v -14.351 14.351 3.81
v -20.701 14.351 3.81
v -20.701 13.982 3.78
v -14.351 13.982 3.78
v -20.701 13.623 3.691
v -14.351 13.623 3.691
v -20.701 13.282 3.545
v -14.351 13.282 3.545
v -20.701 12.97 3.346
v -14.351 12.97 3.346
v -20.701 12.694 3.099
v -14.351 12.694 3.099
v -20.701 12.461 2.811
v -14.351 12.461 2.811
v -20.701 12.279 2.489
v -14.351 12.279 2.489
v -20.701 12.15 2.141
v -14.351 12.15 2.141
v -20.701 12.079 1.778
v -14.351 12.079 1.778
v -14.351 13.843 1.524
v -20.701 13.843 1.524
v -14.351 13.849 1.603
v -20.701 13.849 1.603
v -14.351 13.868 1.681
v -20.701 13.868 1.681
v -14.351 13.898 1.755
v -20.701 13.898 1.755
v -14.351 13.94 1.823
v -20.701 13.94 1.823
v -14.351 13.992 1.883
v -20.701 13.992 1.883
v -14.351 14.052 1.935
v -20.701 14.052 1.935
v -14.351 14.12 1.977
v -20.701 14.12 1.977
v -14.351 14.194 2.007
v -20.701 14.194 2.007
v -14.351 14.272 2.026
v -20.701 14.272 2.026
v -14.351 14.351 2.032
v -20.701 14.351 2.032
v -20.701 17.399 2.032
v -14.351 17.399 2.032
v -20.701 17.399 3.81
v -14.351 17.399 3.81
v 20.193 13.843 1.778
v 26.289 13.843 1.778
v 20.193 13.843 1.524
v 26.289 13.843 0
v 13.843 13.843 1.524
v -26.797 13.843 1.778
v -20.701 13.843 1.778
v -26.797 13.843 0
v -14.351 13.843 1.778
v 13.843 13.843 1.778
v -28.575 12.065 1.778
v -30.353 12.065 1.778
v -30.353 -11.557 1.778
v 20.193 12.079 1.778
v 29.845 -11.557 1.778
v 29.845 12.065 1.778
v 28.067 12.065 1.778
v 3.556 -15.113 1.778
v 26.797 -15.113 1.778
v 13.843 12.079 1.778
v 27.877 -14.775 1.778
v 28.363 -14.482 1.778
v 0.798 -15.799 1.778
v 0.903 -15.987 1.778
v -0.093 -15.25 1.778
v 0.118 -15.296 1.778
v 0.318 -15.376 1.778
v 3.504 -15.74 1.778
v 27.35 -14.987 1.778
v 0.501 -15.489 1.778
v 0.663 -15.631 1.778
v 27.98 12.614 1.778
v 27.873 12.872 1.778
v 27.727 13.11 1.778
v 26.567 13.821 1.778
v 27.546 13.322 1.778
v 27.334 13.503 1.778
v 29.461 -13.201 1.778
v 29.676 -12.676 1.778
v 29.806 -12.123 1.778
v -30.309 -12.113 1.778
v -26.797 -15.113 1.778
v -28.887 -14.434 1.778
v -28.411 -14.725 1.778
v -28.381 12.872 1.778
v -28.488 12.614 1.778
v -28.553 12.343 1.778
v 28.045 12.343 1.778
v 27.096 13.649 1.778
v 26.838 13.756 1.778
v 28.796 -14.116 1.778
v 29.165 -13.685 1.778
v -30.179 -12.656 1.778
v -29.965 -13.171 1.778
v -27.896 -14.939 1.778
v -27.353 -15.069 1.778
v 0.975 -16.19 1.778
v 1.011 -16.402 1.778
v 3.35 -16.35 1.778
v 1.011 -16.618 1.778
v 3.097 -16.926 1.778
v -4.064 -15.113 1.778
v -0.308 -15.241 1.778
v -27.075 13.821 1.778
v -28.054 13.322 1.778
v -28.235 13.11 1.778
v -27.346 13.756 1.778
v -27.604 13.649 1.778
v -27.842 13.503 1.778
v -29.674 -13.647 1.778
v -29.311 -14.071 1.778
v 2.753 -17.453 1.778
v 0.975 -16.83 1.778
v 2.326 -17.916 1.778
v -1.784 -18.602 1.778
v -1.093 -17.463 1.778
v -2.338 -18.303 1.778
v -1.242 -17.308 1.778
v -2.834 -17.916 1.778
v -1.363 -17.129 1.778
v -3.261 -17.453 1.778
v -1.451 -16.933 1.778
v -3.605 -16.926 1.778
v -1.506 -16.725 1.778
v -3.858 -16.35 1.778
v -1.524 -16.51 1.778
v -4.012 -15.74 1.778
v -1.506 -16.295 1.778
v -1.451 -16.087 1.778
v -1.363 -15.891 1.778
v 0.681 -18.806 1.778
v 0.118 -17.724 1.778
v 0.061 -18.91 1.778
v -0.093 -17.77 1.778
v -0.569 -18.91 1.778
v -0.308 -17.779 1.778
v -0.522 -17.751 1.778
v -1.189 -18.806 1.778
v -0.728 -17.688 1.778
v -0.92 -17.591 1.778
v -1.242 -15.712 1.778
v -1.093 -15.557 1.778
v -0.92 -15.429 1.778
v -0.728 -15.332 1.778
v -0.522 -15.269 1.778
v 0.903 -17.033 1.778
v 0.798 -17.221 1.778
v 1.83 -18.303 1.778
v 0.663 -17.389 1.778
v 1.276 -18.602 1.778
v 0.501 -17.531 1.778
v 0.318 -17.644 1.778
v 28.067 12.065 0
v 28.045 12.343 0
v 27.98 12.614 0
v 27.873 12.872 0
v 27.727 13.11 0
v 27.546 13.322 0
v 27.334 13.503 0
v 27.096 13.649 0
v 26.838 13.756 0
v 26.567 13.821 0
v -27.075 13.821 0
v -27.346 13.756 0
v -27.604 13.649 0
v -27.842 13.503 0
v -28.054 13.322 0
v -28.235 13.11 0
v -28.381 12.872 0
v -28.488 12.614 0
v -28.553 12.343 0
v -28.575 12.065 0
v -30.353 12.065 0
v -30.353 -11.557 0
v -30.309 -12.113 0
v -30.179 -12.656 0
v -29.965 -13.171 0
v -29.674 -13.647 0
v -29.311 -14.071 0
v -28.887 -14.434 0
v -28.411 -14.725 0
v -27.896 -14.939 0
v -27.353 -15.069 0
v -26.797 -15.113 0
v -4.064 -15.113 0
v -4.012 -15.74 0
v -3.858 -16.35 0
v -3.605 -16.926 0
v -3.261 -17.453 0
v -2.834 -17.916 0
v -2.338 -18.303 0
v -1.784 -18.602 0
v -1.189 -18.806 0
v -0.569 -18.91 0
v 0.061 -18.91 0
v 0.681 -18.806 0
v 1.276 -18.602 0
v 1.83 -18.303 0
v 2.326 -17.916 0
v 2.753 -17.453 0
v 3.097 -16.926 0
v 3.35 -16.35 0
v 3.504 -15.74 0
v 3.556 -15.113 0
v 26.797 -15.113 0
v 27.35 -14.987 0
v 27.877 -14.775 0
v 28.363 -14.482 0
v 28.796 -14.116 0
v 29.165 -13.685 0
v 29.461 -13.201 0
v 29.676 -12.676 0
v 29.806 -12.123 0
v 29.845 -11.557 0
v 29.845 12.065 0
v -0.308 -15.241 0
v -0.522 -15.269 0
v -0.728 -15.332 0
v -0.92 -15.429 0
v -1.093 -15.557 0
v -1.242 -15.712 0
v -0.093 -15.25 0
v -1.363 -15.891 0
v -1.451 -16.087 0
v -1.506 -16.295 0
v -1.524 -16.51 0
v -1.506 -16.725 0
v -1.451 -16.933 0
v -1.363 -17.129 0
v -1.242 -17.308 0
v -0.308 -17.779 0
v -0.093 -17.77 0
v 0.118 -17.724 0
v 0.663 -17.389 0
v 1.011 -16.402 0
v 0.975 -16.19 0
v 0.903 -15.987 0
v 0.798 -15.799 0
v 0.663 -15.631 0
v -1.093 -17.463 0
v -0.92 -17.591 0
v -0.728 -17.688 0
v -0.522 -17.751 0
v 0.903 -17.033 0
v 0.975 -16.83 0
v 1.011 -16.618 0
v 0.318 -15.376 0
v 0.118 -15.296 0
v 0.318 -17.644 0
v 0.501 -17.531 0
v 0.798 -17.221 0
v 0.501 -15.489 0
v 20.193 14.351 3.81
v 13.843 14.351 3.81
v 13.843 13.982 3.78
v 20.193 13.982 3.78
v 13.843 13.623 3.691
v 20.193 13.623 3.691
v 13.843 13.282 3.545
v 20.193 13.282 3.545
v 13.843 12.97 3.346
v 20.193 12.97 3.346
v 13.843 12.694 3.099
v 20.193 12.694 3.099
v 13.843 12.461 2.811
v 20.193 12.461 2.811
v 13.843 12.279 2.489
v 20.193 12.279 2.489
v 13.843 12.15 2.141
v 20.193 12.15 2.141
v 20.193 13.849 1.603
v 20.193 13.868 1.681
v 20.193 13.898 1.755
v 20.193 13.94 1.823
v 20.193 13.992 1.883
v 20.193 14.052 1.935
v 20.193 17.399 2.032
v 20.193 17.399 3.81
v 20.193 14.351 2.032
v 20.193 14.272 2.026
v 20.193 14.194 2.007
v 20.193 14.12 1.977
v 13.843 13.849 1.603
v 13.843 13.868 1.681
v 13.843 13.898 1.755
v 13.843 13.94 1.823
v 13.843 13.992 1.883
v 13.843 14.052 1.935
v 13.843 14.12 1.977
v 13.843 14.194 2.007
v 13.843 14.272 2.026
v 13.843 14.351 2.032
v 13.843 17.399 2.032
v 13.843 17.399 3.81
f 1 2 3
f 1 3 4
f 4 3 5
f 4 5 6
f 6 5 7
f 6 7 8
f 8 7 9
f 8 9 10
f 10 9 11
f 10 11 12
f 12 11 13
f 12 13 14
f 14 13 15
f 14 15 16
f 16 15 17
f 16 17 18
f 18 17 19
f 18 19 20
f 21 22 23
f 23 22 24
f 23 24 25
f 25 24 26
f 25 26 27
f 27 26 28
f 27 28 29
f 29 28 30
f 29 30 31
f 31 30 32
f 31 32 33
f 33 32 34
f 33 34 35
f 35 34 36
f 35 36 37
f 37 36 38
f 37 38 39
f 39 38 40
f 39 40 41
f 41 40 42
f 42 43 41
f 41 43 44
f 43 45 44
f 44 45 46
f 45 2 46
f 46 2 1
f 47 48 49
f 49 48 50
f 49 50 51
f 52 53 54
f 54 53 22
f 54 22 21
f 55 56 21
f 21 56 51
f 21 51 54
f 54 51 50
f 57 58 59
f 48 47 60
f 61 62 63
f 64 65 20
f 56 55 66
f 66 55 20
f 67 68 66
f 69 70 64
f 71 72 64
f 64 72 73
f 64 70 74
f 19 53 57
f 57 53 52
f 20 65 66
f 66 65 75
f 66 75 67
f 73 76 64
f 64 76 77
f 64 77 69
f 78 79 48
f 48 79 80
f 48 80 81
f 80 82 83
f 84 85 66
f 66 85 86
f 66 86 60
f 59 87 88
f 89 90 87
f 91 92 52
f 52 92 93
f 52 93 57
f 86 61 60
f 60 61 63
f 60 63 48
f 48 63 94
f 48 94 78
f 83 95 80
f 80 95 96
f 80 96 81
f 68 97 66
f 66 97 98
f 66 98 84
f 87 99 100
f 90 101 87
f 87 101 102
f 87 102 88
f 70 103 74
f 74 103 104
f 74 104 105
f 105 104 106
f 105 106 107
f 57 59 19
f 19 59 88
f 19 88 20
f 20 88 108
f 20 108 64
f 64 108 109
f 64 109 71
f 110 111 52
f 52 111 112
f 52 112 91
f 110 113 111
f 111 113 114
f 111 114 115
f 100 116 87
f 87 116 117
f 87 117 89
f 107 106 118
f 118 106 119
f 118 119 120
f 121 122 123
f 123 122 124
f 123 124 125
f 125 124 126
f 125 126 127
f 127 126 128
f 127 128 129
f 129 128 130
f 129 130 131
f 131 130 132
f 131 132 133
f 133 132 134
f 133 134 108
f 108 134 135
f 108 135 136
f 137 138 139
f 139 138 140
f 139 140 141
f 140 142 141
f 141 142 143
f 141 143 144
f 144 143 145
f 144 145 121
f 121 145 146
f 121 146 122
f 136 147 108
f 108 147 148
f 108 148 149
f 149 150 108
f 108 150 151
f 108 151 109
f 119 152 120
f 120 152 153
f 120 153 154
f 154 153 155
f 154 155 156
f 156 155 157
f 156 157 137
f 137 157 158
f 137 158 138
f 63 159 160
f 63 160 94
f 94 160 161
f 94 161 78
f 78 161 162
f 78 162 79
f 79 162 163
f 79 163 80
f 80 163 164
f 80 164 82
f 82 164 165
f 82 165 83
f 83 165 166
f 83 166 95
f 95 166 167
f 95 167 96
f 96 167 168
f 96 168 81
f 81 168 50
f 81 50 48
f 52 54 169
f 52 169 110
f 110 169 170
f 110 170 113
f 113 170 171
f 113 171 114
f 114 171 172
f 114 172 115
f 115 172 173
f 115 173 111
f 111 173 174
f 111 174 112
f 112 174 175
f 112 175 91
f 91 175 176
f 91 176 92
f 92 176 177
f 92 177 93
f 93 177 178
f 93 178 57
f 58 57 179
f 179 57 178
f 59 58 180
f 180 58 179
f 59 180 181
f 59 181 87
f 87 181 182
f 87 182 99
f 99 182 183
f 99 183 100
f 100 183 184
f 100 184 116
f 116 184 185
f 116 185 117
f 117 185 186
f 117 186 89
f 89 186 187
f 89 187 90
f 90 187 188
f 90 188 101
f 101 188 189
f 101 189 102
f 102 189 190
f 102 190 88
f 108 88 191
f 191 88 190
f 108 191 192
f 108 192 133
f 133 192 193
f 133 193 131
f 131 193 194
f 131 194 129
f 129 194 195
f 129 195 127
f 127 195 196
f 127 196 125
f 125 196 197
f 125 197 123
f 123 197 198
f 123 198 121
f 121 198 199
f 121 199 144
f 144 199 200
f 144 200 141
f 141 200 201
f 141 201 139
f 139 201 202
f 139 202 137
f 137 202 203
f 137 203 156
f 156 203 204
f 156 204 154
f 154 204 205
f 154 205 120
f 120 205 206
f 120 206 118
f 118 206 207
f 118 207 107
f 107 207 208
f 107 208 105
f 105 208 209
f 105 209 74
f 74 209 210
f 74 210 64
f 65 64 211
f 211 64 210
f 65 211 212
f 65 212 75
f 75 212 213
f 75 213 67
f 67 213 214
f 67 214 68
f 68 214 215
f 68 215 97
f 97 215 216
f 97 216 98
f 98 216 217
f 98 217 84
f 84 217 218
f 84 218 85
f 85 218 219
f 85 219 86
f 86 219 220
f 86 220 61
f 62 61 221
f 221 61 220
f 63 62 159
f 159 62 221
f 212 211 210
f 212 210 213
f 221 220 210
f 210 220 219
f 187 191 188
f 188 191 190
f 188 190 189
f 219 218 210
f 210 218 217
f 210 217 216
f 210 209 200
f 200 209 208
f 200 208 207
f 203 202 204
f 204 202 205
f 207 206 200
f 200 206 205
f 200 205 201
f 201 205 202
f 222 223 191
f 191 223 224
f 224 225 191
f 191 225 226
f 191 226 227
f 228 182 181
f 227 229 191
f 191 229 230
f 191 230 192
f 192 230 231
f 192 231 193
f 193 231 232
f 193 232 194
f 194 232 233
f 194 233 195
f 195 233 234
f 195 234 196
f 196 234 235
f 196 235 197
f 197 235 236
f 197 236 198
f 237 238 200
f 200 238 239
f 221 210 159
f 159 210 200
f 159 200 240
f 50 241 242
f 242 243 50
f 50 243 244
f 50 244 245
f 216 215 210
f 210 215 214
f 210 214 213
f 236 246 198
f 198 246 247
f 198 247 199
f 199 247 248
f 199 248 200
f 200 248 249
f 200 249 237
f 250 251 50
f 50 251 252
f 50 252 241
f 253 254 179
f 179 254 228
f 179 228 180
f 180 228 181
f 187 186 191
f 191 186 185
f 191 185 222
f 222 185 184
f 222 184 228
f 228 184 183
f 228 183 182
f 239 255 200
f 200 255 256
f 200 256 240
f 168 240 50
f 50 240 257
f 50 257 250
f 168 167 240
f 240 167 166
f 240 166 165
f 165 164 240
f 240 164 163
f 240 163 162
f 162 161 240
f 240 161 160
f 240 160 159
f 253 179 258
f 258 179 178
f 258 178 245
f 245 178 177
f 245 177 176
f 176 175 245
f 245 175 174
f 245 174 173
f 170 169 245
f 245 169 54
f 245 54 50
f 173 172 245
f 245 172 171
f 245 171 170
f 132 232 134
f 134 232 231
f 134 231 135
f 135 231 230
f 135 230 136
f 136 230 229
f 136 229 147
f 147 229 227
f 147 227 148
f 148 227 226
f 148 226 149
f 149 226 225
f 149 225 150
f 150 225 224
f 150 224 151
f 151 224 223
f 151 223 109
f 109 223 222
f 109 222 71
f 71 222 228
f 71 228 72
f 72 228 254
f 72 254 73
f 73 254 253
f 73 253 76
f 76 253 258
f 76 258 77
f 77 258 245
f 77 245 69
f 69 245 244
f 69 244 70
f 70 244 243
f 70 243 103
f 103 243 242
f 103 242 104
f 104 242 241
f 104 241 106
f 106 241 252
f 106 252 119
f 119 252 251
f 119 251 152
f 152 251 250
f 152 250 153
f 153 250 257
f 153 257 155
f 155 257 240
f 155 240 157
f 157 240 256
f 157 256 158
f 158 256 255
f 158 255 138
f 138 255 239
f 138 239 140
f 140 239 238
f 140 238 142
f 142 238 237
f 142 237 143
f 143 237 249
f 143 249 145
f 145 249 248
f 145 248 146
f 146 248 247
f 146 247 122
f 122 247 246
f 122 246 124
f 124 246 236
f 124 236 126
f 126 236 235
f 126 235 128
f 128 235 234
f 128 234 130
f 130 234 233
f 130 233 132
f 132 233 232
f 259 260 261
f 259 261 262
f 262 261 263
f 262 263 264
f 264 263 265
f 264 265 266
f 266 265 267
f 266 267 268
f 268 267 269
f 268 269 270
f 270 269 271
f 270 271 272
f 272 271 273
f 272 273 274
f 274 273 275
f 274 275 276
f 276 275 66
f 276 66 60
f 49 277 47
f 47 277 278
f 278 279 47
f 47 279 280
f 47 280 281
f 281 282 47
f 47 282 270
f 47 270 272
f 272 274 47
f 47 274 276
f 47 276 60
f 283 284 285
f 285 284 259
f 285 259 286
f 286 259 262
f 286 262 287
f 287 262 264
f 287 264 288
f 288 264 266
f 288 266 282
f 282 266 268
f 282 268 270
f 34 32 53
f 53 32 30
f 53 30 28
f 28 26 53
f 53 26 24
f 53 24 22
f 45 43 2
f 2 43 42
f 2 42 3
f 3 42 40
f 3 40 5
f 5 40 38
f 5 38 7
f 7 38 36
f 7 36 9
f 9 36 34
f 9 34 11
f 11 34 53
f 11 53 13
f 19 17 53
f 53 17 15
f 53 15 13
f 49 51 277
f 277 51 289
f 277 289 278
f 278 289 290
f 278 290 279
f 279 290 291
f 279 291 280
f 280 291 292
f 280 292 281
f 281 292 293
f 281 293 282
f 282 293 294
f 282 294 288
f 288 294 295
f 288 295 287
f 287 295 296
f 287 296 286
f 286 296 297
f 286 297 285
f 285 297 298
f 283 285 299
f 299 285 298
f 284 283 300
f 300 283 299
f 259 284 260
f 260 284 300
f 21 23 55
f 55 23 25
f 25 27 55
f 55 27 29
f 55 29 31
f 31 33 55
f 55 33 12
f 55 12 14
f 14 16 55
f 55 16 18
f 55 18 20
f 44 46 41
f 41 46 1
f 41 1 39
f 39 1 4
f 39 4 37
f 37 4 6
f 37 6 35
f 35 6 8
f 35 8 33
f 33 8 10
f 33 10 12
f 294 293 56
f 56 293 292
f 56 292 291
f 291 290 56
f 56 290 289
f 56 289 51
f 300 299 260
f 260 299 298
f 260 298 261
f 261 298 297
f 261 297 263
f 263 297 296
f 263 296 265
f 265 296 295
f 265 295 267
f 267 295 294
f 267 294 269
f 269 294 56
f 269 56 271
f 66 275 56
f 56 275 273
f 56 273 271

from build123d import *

# Parameters (mm, degrees)
BOSS_EXTRUDE1_DEPTH = 1.778
SKETCH3_R           = 1.27
CUT_EXTRUDE1_DEPTH  = 1.778
BOSS_EXTRUDE2_DEPTH = 40.894
SKETCH8_W           = 28.194
SKETCH8_H           = 3.556
CUT_EXTRUDE3_DEPTH  = 3.175
SKETCH10_W          = 28.194
SKETCH10_H          = 1.974840954
CUT_EXTRUDE4_DEPTH  = 31.75


with BuildPart() as part:
    # Sketch1 → Boss-Extrude1 (new body)
    with BuildSketch(Plane.XY):
        with BuildLine():
            Line((-30.353, 12.065), (-30.353, -11.557))
            ThreePointArc((-30.353, -11.557), (-29.311471714, -14.071471714), (-26.797, -15.113))
            Line((-26.797, -15.113), (-4.064, -15.113))
            ThreePointArc((-4.064, -15.113), (-0.254, -18.923), (3.556, -15.113))
            Line((3.556, -15.113), (26.797, -15.113))
            ThreePointArc((26.797, -15.113), (28.989103251, -13.90765993), (29.845, -11.557))
            Line((29.845, -11.557), (29.845, 12.065))
            Line((29.845, 12.065), (28.067, 12.065))
            ThreePointArc((28.067, 12.065), (27.546235857, 13.322235857), (26.289, 13.843))
            Line((26.289, 13.843), (-26.797, 13.843))
            ThreePointArc((-26.797, 13.843), (-28.054235857, 13.322235857), (-28.575, 12.065))
            Line((-28.575, 12.065), (-30.353, 12.065))
        make_face()
    extrude(amount=BOSS_EXTRUDE1_DEPTH)

    # Sketch3 → Cut-Extrude1 (cut)
    with BuildSketch(Plane(origin=(0, 0, 0), x_dir=(-1, 0, 0), z_dir=(0, 0, -1))):
        with Locations((0.254, -16.51)):
            Circle(SKETCH3_R)
    extrude(amount=-CUT_EXTRUDE1_DEPTH, mode=Mode.SUBTRACT)

    # Sketch7 → Boss-Extrude2 (add)
    with BuildSketch(Plane.ZY.offset(20.701)):
        with BuildLine():
            Line((2.032, 14.351), (2.032, 17.399))
            Line((2.032, 17.399), (3.81, 17.399))
            Line((3.81, 17.399), (3.81, 14.351))
            ThreePointArc((3.81, 14.351), (3.140446102, 12.734553898), (1.524, 12.065))
            Line((1.524, 12.065), (1.524, 13.843))
            ThreePointArc((1.524, 13.843), (1.883210245, 13.991789755), (2.032, 14.351))
        make_face()
    extrude(amount=-BOSS_EXTRUDE2_DEPTH)

    # Sketch8 → Cut-Extrude3 (cut, symmetric)
    with BuildSketch(Plane.XY.offset(1.778)):
        with Locations((-0.254, 15.621)):
            Rectangle(SKETCH8_W, SKETCH8_H)
    extrude(amount=CUT_EXTRUDE3_DEPTH, both=True, mode=Mode.SUBTRACT)

    # Sketch10 → Cut-Extrude4 (cut)
    with BuildSketch(Plane.XZ.offset(15.113)):
        with Locations((-0.254, 2.765420477)):
            Rectangle(SKETCH10_W, SKETCH10_H)
    extrude(amount=-CUT_EXTRUDE4_DEPTH, mode=Mode.SUBTRACT)


solid = part.part
